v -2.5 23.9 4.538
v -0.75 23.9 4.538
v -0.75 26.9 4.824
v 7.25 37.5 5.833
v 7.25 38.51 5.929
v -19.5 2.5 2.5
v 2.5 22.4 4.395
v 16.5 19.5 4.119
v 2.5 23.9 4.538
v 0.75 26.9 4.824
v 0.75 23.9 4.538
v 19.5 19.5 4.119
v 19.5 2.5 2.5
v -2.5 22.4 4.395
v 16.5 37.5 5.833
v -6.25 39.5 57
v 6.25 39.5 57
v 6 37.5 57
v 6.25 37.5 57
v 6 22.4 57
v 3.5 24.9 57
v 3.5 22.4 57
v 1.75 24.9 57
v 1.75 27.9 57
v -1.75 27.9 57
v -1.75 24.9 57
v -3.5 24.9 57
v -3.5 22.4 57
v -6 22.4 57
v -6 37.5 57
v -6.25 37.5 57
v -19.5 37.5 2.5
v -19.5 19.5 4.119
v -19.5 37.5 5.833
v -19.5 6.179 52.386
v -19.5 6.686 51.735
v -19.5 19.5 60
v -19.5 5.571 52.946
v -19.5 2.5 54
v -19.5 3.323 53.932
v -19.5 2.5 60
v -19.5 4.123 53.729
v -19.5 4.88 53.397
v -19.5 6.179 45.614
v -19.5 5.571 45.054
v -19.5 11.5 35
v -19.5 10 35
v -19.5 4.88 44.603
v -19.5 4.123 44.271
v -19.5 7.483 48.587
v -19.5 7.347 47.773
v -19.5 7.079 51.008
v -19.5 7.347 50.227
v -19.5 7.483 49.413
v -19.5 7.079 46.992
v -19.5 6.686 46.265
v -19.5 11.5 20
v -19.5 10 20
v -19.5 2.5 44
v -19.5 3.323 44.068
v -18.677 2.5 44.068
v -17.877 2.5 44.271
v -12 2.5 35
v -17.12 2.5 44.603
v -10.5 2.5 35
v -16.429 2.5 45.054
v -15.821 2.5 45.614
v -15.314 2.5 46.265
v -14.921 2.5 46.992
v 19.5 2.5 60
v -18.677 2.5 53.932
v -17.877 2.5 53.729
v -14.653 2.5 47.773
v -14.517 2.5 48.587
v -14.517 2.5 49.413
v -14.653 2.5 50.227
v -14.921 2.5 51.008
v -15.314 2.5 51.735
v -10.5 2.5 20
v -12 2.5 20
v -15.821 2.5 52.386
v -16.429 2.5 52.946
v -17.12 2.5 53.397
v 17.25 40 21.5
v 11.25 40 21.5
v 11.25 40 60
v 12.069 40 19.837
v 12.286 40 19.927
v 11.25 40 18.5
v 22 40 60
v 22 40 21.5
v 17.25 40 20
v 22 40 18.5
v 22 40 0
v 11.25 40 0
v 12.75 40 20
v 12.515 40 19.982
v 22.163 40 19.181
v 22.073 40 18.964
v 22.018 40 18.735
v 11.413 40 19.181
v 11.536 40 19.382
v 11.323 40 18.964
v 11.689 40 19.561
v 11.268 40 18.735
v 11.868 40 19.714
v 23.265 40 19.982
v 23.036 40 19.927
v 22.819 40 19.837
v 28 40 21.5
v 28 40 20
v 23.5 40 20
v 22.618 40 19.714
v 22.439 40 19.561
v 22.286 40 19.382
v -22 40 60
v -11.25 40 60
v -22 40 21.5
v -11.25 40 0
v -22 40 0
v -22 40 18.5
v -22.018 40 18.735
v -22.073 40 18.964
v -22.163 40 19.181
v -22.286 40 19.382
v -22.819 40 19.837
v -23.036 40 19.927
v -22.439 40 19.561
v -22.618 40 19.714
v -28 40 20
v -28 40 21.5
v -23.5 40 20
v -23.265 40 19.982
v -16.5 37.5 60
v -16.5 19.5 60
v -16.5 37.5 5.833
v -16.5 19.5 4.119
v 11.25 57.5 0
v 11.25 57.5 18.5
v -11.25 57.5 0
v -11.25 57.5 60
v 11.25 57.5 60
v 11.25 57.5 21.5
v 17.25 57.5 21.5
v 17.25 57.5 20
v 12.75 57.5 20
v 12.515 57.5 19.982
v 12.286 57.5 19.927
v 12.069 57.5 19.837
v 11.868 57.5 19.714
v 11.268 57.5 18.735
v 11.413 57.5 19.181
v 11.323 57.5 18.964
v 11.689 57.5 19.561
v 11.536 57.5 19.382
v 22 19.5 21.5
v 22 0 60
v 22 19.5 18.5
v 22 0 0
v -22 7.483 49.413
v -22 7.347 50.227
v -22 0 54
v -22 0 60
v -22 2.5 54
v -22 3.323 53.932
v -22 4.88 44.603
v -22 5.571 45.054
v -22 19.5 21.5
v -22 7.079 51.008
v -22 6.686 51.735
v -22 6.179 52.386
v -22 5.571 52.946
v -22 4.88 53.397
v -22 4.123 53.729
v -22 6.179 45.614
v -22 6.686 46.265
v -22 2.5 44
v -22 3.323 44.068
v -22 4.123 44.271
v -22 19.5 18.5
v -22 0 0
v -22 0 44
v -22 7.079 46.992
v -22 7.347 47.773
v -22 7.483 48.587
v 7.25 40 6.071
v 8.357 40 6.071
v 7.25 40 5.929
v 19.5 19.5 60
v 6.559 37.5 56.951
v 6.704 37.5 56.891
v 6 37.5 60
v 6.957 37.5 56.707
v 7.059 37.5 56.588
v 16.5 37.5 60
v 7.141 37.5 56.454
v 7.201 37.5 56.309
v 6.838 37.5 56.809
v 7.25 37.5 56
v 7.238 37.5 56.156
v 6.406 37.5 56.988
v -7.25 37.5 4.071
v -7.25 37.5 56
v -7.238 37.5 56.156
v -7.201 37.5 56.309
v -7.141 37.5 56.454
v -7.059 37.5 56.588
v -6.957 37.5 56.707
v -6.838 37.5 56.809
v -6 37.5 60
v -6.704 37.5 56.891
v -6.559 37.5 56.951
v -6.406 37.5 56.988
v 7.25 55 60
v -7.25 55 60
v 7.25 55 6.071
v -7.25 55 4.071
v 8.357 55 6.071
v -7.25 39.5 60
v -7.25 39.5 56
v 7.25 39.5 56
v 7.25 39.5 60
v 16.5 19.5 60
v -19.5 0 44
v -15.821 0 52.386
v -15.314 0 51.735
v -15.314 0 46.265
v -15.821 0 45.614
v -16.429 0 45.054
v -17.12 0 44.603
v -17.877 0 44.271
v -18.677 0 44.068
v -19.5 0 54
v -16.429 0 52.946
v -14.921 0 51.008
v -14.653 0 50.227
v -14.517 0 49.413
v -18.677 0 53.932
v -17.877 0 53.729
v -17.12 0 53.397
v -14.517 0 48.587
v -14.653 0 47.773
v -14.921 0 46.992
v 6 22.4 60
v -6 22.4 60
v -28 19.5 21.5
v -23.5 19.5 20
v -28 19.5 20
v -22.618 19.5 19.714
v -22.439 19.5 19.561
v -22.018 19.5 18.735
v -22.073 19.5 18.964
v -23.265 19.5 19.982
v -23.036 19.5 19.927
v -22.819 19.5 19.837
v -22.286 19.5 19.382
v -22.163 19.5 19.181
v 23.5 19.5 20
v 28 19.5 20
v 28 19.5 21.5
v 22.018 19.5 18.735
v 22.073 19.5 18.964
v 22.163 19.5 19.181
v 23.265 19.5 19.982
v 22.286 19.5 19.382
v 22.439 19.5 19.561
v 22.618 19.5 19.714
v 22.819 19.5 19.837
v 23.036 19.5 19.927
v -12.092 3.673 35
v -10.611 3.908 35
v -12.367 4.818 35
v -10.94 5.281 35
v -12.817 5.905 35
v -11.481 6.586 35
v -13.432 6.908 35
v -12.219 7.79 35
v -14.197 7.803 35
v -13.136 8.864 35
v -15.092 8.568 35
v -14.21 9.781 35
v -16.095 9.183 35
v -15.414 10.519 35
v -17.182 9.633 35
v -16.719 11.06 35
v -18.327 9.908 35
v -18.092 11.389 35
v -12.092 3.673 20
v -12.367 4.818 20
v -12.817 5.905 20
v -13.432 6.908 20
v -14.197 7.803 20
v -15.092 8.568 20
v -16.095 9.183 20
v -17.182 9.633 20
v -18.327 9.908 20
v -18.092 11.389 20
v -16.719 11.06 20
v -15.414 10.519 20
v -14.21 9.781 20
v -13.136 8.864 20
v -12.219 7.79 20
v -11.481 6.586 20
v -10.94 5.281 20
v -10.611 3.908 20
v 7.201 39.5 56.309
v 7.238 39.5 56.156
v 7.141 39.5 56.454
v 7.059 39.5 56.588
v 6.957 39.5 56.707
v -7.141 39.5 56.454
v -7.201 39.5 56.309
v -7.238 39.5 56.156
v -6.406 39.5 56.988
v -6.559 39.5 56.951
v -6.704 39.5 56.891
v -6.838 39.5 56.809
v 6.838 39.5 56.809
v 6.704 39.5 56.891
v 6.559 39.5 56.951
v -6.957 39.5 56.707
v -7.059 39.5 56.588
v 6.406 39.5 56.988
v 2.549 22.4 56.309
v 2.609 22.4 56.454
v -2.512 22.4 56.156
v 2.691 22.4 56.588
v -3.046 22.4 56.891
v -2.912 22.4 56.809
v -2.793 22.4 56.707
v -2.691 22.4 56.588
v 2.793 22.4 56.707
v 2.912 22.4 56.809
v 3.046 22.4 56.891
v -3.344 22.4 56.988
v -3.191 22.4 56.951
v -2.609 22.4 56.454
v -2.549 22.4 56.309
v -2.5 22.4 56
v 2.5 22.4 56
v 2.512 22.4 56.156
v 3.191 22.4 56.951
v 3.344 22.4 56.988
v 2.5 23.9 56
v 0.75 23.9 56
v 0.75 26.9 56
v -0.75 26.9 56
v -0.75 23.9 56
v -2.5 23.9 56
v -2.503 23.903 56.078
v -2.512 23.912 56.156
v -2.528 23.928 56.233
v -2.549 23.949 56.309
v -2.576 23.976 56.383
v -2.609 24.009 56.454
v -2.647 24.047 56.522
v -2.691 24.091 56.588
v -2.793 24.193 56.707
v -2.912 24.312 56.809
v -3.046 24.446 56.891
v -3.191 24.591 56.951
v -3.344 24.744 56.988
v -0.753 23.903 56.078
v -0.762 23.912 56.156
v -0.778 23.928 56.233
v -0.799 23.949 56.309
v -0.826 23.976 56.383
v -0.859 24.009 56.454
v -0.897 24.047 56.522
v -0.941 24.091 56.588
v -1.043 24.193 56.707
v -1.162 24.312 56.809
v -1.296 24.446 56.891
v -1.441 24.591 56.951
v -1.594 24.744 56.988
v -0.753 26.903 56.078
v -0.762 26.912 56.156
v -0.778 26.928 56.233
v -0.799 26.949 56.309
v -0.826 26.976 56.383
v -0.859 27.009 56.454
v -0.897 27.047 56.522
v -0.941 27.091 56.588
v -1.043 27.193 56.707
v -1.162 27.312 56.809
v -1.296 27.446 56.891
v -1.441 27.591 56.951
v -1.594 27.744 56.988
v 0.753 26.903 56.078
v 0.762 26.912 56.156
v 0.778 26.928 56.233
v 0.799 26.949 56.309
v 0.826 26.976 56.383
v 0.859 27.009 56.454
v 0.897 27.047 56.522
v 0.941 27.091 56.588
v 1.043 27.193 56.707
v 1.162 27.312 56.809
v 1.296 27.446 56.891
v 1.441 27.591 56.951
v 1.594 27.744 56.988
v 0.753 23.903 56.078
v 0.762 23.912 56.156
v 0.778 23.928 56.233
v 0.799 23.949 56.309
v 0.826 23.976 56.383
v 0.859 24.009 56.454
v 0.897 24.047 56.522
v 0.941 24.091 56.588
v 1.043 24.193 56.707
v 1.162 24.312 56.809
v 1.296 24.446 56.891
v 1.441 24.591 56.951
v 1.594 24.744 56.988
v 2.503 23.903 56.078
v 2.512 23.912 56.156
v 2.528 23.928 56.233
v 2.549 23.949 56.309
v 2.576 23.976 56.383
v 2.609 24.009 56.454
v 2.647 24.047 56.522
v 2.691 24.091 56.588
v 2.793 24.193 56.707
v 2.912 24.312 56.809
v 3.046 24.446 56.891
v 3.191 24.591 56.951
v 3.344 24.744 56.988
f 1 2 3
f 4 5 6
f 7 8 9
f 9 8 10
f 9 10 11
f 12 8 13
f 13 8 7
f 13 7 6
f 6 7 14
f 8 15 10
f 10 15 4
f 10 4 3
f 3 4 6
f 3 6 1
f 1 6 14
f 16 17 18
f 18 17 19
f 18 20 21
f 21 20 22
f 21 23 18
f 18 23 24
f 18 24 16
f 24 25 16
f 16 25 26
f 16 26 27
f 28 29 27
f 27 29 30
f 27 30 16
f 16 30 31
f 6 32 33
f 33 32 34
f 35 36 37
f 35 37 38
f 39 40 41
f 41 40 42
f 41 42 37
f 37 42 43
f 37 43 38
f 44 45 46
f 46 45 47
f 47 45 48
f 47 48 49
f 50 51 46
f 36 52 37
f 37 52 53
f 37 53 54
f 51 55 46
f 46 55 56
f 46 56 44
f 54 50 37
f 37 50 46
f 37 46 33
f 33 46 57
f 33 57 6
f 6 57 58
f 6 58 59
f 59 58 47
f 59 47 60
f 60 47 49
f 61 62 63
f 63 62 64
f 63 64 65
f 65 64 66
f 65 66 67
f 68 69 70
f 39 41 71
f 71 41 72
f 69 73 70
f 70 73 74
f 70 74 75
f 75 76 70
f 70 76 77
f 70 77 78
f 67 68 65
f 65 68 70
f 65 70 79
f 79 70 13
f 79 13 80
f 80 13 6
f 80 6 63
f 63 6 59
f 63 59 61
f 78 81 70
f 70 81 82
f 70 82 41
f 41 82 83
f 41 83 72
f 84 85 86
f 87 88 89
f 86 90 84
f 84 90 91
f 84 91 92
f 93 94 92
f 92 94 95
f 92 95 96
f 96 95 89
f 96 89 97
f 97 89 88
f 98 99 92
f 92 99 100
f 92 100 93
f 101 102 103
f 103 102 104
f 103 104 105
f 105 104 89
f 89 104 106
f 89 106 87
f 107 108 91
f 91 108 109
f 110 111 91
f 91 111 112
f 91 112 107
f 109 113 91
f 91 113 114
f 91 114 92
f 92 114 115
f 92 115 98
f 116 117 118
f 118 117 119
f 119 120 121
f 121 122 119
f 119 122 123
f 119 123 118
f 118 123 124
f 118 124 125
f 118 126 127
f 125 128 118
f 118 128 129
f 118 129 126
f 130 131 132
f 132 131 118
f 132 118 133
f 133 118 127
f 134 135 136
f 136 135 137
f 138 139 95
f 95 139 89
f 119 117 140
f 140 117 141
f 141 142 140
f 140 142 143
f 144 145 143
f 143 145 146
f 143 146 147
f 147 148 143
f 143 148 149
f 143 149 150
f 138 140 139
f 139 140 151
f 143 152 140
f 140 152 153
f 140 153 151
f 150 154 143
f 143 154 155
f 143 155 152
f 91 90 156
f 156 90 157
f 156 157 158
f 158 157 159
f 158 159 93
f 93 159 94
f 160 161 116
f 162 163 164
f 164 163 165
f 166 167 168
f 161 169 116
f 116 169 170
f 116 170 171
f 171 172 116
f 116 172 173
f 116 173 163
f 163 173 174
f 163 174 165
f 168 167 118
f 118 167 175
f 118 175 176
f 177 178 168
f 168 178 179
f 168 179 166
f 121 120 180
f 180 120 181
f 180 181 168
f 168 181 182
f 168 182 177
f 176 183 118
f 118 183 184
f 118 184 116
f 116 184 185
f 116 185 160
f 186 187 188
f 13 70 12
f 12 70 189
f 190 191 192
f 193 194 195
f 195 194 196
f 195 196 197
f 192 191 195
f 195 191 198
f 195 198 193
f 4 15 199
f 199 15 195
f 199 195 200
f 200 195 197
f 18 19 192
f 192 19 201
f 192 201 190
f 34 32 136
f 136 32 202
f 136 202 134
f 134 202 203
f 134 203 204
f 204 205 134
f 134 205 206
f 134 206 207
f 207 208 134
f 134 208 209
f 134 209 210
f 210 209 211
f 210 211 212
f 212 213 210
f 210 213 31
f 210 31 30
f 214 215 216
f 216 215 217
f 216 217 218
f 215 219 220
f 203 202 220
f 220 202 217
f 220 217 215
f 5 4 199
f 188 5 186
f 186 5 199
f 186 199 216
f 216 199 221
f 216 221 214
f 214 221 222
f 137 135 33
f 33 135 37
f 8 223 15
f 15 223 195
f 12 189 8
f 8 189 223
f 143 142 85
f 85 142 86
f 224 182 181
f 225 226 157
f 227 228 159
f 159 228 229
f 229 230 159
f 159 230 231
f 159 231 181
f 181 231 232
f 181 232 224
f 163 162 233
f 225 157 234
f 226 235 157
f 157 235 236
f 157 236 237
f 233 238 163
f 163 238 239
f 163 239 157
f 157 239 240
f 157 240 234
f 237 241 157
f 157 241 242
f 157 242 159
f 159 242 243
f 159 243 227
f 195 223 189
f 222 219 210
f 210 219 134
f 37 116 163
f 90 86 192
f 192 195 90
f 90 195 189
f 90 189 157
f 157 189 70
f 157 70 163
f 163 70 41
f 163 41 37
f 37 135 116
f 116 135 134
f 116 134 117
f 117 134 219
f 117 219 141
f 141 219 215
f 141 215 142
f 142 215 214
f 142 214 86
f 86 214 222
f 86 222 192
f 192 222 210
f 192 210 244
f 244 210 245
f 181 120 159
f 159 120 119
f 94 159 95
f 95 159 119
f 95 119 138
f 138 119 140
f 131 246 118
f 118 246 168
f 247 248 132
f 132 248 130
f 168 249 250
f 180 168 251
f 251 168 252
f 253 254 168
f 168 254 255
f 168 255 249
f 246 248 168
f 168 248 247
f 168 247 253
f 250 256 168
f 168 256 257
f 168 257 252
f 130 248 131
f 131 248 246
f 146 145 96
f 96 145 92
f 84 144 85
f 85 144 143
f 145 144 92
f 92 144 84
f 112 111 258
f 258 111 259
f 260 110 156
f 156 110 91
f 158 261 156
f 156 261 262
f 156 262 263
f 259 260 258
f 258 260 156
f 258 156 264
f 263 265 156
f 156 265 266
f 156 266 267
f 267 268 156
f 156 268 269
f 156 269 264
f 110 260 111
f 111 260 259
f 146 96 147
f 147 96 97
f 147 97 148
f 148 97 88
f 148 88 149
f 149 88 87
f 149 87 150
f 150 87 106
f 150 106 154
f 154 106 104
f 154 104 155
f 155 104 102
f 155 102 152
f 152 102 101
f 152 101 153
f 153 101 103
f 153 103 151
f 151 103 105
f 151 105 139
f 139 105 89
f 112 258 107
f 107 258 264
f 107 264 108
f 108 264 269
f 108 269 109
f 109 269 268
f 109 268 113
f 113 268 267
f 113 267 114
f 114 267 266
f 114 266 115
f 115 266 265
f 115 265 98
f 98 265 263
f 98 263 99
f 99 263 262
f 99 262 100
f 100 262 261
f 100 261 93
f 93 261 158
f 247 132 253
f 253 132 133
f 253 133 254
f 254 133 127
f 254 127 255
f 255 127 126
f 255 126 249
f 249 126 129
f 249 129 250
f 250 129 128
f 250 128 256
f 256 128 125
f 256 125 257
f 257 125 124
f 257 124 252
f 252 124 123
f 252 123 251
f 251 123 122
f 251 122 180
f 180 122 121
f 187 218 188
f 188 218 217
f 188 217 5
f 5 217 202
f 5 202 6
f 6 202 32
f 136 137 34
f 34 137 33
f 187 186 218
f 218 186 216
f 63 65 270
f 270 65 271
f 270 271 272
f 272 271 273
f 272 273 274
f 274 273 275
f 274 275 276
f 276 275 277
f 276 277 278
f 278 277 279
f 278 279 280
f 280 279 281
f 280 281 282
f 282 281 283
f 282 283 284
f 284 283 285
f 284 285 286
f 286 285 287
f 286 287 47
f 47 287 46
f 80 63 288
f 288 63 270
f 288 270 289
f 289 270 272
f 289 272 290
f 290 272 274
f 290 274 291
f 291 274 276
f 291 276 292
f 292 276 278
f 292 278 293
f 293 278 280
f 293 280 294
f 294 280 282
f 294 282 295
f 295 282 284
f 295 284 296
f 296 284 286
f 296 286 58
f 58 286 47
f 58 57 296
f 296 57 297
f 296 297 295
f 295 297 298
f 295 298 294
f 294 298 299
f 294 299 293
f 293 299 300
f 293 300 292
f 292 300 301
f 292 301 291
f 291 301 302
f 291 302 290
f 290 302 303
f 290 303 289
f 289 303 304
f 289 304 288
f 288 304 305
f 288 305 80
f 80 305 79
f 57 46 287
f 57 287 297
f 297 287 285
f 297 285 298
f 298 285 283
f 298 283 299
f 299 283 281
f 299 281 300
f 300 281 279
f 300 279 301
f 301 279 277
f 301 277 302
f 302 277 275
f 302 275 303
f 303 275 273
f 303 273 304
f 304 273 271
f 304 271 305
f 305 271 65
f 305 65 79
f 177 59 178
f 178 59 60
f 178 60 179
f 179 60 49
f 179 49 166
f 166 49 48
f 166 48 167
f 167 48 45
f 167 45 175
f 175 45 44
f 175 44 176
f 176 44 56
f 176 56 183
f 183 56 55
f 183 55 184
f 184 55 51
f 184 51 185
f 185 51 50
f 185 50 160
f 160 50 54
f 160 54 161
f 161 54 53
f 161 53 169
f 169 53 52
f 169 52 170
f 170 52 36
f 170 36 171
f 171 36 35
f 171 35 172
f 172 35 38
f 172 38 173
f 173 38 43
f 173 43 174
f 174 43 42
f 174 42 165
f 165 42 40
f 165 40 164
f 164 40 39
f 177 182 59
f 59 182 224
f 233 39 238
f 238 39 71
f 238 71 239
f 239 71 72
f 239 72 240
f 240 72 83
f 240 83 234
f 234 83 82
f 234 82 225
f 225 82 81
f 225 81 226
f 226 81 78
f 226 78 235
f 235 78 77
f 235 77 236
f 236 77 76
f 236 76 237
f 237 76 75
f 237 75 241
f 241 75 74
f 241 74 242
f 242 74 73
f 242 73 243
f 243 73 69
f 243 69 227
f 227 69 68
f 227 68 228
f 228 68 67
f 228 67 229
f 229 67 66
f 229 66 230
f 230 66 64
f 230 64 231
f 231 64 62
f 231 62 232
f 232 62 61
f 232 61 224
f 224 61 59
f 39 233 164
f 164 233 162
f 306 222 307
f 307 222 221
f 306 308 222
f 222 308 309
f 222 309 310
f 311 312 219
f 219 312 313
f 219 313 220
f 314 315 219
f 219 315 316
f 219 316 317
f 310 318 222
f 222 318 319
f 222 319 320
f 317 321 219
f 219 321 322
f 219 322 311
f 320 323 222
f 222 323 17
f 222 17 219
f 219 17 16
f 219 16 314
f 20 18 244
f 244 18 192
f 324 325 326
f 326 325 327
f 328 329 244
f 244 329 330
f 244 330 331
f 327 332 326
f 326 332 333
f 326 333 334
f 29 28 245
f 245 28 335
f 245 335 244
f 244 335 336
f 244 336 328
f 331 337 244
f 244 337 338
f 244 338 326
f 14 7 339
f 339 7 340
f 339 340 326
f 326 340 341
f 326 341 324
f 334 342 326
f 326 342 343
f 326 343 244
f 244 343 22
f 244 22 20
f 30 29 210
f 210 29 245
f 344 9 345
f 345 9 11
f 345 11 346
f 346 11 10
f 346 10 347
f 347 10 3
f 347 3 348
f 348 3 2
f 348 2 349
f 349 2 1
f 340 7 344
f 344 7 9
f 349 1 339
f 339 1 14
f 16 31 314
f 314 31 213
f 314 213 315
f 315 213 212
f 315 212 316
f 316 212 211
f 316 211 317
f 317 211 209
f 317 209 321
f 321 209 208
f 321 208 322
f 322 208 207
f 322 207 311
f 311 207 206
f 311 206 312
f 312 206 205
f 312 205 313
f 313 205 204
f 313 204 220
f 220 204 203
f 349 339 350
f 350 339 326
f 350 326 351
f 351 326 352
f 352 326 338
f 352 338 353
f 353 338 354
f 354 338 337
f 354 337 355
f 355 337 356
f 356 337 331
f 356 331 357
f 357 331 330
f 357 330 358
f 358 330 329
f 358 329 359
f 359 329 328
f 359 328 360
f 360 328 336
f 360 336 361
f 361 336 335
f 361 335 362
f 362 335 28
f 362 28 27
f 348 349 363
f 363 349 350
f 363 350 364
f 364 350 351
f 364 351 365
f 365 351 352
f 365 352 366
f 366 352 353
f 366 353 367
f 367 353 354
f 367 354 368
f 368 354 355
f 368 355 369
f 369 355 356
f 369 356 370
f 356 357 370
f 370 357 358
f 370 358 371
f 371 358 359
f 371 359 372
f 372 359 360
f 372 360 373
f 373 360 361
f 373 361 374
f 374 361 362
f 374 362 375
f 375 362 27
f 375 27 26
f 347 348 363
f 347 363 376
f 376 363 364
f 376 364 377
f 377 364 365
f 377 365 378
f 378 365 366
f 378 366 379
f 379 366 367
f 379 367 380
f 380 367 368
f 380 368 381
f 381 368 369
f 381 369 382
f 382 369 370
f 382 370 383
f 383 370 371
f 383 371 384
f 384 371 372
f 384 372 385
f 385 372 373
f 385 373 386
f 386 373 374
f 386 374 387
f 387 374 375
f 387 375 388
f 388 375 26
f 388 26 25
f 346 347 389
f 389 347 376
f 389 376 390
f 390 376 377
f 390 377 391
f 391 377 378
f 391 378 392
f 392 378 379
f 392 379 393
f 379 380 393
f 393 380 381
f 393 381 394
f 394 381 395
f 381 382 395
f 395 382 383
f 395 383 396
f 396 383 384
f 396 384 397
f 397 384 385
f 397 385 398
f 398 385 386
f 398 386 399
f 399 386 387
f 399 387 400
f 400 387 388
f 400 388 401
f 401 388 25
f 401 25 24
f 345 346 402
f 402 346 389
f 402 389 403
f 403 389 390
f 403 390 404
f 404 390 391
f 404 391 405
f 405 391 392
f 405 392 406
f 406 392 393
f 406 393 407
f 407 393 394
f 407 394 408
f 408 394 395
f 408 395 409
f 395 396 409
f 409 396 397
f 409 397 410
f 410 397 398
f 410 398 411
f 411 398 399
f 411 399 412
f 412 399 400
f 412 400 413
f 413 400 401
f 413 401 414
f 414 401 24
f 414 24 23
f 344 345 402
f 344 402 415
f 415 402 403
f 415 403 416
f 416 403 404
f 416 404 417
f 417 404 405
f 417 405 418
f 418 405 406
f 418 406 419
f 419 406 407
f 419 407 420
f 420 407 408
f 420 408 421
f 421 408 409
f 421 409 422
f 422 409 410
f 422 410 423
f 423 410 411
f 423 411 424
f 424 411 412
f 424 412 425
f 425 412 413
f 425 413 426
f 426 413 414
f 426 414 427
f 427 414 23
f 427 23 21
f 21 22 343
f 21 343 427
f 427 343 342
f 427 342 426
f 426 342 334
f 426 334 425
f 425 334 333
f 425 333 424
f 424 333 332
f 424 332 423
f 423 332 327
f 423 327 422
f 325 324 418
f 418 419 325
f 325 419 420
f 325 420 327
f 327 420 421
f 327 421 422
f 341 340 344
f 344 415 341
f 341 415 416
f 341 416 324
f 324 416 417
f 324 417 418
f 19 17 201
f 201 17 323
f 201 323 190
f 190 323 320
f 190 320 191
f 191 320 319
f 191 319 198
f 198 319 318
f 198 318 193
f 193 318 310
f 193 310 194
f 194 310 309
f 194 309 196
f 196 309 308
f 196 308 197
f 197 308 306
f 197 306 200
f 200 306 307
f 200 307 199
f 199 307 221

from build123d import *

# Parameters (mm, degrees)
BOSS_EXTRUDE1_DEPTH             = 60
SHELL1_T                        = -2.5
SKETCH2_W                       = 1.5
SKETCH2_H                       = 17.5
BOSS_EXTRUDE2_DEPTH             = 57.5
SKETCH4_W                       = 3
SKETCH4_H                       = 18
BOSS_EXTRUDE4_DEPTH             = 57.5
BOSS_EXTRUDE5_DEPTH             = 5
SKETCH13_W                      = 1.5
SKETCH13_H                      = 20.5
BOSS_EXTRUDE8_DEPTH             = 6
SKETCH14_W                      = 17.5
SKETCH14_H                      = 1.5
BOSS_EXTRUDE9_DEPTH             = 6
SKETCH15_W                      = 1.5
SKETCH15_H                      = 20.5
BOSS_EXTRUDE10_DEPTH            = 6
FILLET7_R                       = 1.5
CUT_EXTRUDE9_REACH              = 89.694
CUT_EXTRUDE9_DIRECTION_2_REACH  = 89.694
CUT_EXTRUDE10_REACH             = 88.076
CUT_EXTRUDE10_DIRECTION_2_REACH = 88.076
SKETCH27_W                      = 5
SKETCH27_H                      = 17
BOSS_EXTRUDE15_DEPTH            = 2.5
BOSS_EXTRUDE16_DEPTH            = 5.5
SKETCH29_W                      = 9.25
SKETCH29_H                      = 1.666666667
BOSS_EXTRUDE17_DEPTH            = 2.5
SKETCH30_W                      = 3.942307692
SKETCH30_H                      = 17.5
BOSS_EXTRUDE18_DEPTH            = 4
SKETCH31_W                      = 5
SKETCH31_H                      = 17
BOSS_EXTRUDE19_DEPTH            = 2.5
SKETCH32_W                      = 4.464285714
SKETCH32_H                      = 20.5
BOSS_EXTRUDE20_DEPTH            = 5.5
SKETCH35_W                      = 9.25
SKETCH35_H                      = 1.666666667
BOSS_EXTRUDE21_DEPTH            = 2.5
SKETCH36_W                      = 1.428571429
SKETCH36_H                      = 17.5
BOSS_EXTRUDE22_DEPTH            = 4
SKETCH37_W                      = 15.607142857
SKETCH37_H                      = 3.429487179
BOSS_EXTRUDE23_DEPTH            = 2.5
SKETCH38_W                      = 39
SKETCH38_H                      = 5
BOSS_EXTRUDE24_DEPTH            = 2.5
SKETCH39_W                      = 15
SKETCH39_H                      = 1.5
REVOLVE1_ANGLE                  = 90
CUT_EXTRUDE11_DEPTH             = 10
CUT_EXTRUDE12_DEPTH             = 10
BOSS_EXTRUDE25_DEPTH            = 3
BOSS_EXTRUDE26_START            = -2.5
SKETCH43_W                      = 12.25
SKETCH43_H                      = 3.571428571
BOSS_EXTRUDE26_DEPTH            = 2.5
BOSS_EXTRUDE27_REACH            = 87.669
FILLET8_R                       = 1


with BuildPart() as part:
    # Sketch1 → Boss-Extrude1 (new body)
    with BuildSketch(Plane.XY):
        Polygon((-22, 0), (22, 0), (22, 40), (11.25, 40), (11.25, 57.5), (-11.25, 57.5), (-11.25, 40), (-22, 40), align=None)
    extrude(amount=BOSS_EXTRUDE1_DEPTH)

    # Shell1
    shell1_openings = [part.faces().sort_by_distance(p)[0] for p in [
        (0, 25.256094022, 60),
    ]]
    offset(amount=SHELL1_T, openings=shell1_openings, kind=Kind.INTERSECTION)

    # Sketch2 → Boss-Extrude2 (add)
    with BuildSketch(Plane.XY.offset(2.5)):
        with Locations((-8, 46.25)):
            Rectangle(SKETCH2_W, SKETCH2_H)
        with Locations((8, 46.25)):
            Rectangle(SKETCH2_W, SKETCH2_H)
    extrude(amount=BOSS_EXTRUDE2_DEPTH)

    # Sketch4 → Boss-Extrude4 (add)
    with BuildSketch(Plane.XY.offset(2.5)):
        with Locations((-18, 28.5)):
            Rectangle(SKETCH4_W, SKETCH4_H)
        with Locations((18, 28.5)):
            Rectangle(SKETCH4_W, SKETCH4_H)
    extrude(amount=BOSS_EXTRUDE4_DEPTH)

    # Sketch7 → Boss-Extrude5 (add)
    with BuildSketch(Plane.XY.offset(2.5)):
        Polygon((-7.25, 55), (7.25, 55), (7.25, 37.5), (16.5, 37.5), (16.5, 19.5), (19.5, 19.5), (19.5, 2.5), (-19.5, 2.5), (-19.5, 19.5), (-16.5, 19.5), (-16.5, 37.5), (-7.25, 37.5), align=None)
    extrude(amount=BOSS_EXTRUDE5_DEPTH)

    # Sketch13 → Boss-Extrude8 (add)
    with BuildSketch(Plane.ZY.offset(22)):
        with Locations((20.75, 29.75)):
            Rectangle(SKETCH13_W, SKETCH13_H)
    extrude(amount=BOSS_EXTRUDE8_DEPTH)

    # Sketch14 → Boss-Extrude9 (add)
    with BuildSketch(Plane(origin=(11.25, 46.25, 0), x_dir=(0, 1, 0), z_dir=(-1, 0, 0))):
        with Locations((2.5, -20.75)):
            Rectangle(SKETCH14_W, SKETCH14_H)
    extrude(amount=-BOSS_EXTRUDE9_DEPTH)

    # Sketch15 → Boss-Extrude10 (add)
    with BuildSketch(Plane(origin=(22, 0, 0), x_dir=(0, 0, -1), z_dir=(1, 0, 0))):
        with Locations((-20.75, 29.75)):
            Rectangle(SKETCH15_W, SKETCH15_H)
    extrude(amount=BOSS_EXTRUDE10_DEPTH)

    # Fillet7
    fillet7_edges = [part.edges().sort_by_distance(p)[0] for p in [
        (-22, 29.75, 20),
        (11.25, 48.75, 20),
        (22, 29.75, 20),
    ]]
    fillet(fillet7_edges, radius=FILLET7_R)

    # Sketch26 → Cut-Extrude9 (cut, up to next)
    with BuildSketch(Plane(origin=(0, 0, 0), x_dir=(0, 0, -1), z_dir=(1, 0, 0)), mode=Mode.PRIVATE) as cut_extrude9_sk1:
        Polygon((-7.5, 55), (-7.5, 2.5), (-2.5, 2.5), align=None)
    cut_extrude9_tool1 = extrude(cut_extrude9_sk1.sketch, amount=-CUT_EXTRUDE9_REACH, mode=Mode.PRIVATE) & part.part
    add(cut_extrude9_tool1.solids().sort_by_distance((0, 20, 5.833333))[0], mode=Mode.SUBTRACT)

    # Sketch26 → Cut-Extrude9 direction 2 (cut, up to next)
    with BuildSketch(Plane(origin=(0, 0, 0), x_dir=(0, 0, -1), z_dir=(1, 0, 0)), mode=Mode.PRIVATE) as cut_extrude9_direction_2_sk1:
        Polygon((-7.5, 55), (-7.5, 2.5), (-2.5, 2.5), align=None)
    cut_extrude9_direction_2_tool1 = extrude(cut_extrude9_direction_2_sk1.sketch, amount=CUT_EXTRUDE9_DIRECTION_2_REACH, mode=Mode.PRIVATE) & part.part
    add(cut_extrude9_direction_2_tool1.solids().sort_by_distance((0, 20, 5.833333))[0], mode=Mode.SUBTRACT)

    # Sketch33 → Cut-Extrude10 (cut, up to next)
    with BuildSketch(Plane(origin=(0, 2.5, 0), x_dir=(1, 0, 0), z_dir=(0, 1, 0)), mode=Mode.PRIVATE) as cut_extrude10_sk1:
        Polygon((-19.5, -7.5), (19.5, -7.5), (-19.5, -2.5), align=None)
    cut_extrude10_tool1 = extrude(cut_extrude10_sk1.sketch, amount=CUT_EXTRUDE10_REACH, mode=Mode.PRIVATE) & part.part
    add(cut_extrude10_tool1.solids().sort_by_distance((-6.5, 2.5, 5.833333))[0], mode=Mode.SUBTRACT)

    # Sketch33 → Cut-Extrude10 direction 2 (cut, up to next)
    with BuildSketch(Plane(origin=(0, 2.5, 0), x_dir=(1, 0, 0), z_dir=(0, 1, 0)), mode=Mode.PRIVATE) as cut_extrude10_direction_2_sk1:
        Polygon((-19.5, -7.5), (19.5, -7.5), (-19.5, -2.5), align=None)
    cut_extrude10_direction_2_tool1 = extrude(cut_extrude10_direction_2_sk1.sketch, amount=-CUT_EXTRUDE10_DIRECTION_2_REACH, mode=Mode.PRIVATE) & part.part
    add(cut_extrude10_direction_2_tool1.solids().sort_by_distance((-6.5, 2.5, 5.833333))[0], mode=Mode.SUBTRACT)

    # Sketch27 → Boss-Extrude15 (add)
    with BuildSketch(Plane.ZY.offset(22)):
        with Locations((5, 11)):
            Rectangle(SKETCH27_W, SKETCH27_H)
    extrude(amount=-BOSS_EXTRUDE15_DEPTH)

    # Sketch27<4> → Boss-Extrude16 (add)
    with BuildSketch(Plane.ZY.offset(22)):
        Polygon((4.119047619, 19.5), (7.5, 19.5), (7.5, 40), (6.071428571, 40), align=None)
    extrude(amount=-BOSS_EXTRUDE16_DEPTH)

    # Sketch29 → Boss-Extrude17 (add)
    with BuildSketch(Plane.XZ.offset(-37.5)):
        with Locations((-11.875, 6.666666667)):
            Rectangle(SKETCH29_W, SKETCH29_H)
    extrude(amount=-BOSS_EXTRUDE17_DEPTH)

    # Sketch30 → Boss-Extrude18 (add)
    with BuildSketch(Plane.ZY.offset(11.25)):
        with Locations((5.528846154, 48.75)):
            Rectangle(SKETCH30_W, SKETCH30_H)
    extrude(amount=-BOSS_EXTRUDE18_DEPTH)

    # Sketch31 → Boss-Extrude19 (add)
    with BuildSketch(Plane.ZY.offset(-19.5)):
        with Locations((5, 11)):
            Rectangle(SKETCH31_W, SKETCH31_H)
    extrude(amount=-BOSS_EXTRUDE19_DEPTH)

    # Sketch32 → Boss-Extrude20 (add)
    with BuildSketch(Plane(origin=(22, 0, 0), x_dir=(0, 0, -1), z_dir=(1, 0, 0))):
        with Locations((-5.267857143, 29.75)):
            Rectangle(SKETCH32_W, SKETCH32_H)
    extrude(amount=-BOSS_EXTRUDE20_DEPTH)

    # Sketch35 → Boss-Extrude21 (add)
    with BuildSketch(Plane.XZ.offset(-37.5)):
        with Locations((11.875, 6.666666667)):
            Rectangle(SKETCH35_W, SKETCH35_H)
    extrude(amount=-BOSS_EXTRUDE21_DEPTH)

    # Sketch36 → Boss-Extrude22 (add)
    with BuildSketch(Plane(origin=(11.25, 0, 0), x_dir=(0, 0, -1), z_dir=(1, 0, 0))):
        with Locations((-6.785714286, 48.75)):
            Rectangle(SKETCH36_W, SKETCH36_H)
    extrude(amount=-BOSS_EXTRUDE22_DEPTH)

    # Sketch37 → Boss-Extrude23 (add)
    with BuildSketch(Plane(origin=(0, 57.5, 0), x_dir=(1, 0, 0), z_dir=(0, 1, 0))):
        with Locations((0.553571429, -5.785256411)):
            Rectangle(SKETCH37_W, SKETCH37_H)
    extrude(amount=-BOSS_EXTRUDE23_DEPTH)

    # Sketch38 → Boss-Extrude24 (add)
    with BuildSketch(Plane.XZ):
        with Locations((0, 5)):
            Rectangle(SKETCH38_W, SKETCH38_H)
    extrude(amount=-BOSS_EXTRUDE24_DEPTH)

    # Sketch39 → Revolve1 (revolve)
    with BuildSketch(Plane(origin=(-19.5, 0, 0), x_dir=(0, 0, -1), z_dir=(1, 0, 0))):
        with Locations((-27.5, 10.75)):
            Rectangle(SKETCH39_W, SKETCH39_H)
    revolve(axis=Axis((-19.5, 2.5, 60), (0, 0, -1)), revolution_arc=REVOLVE1_ANGLE)

    # Sketch40 → Cut-Extrude11 (cut)
    with BuildSketch(Plane(origin=(-19.5, 0, 0), x_dir=(0, 0, -1), z_dir=(1, 0, 0))):
        with BuildLine():
            Line((-54, 2.5), (-44, 2.5))
            ThreePointArc((-44, 2.5), (-49, 7.5), (-54, 2.5))
        make_face()
    extrude(amount=-CUT_EXTRUDE11_DEPTH, mode=Mode.SUBTRACT)

    # Sketch41 → Cut-Extrude12 (cut)
    with BuildSketch(Plane(origin=(0, 2.5, 0), x_dir=(1, 0, 0), z_dir=(0, 1, 0))):
        with BuildLine():
            Line((-22, -44), (-19.5, -44))
            ThreePointArc((-19.5, -44), (-14.5, -49), (-19.5, -54))
            Line((-19.5, -54), (-22, -54))
            Line((-22, -54), (-22, -44))
        make_face()
    extrude(amount=-CUT_EXTRUDE12_DEPTH, mode=Mode.SUBTRACT)

    # Sketch42 → Boss-Extrude25 (add)
    with BuildSketch(Plane.XY.offset(60)):
        Polygon((-7.25, 39.5), (7.25, 39.5), (7.25, 37.5), (6, 37.5), (6, 22.4), (-6, 22.4), (-6, 37.5), (-7.25, 37.5), align=None)
    extrude(amount=-BOSS_EXTRUDE25_DEPTH)

    # Sketch43 → Boss-Extrude26 (add)
    with BuildSketch(Plane(origin=(0, 40, 0), x_dir=(1, 0, 0), z_dir=(0, 1, 0)).offset(BOSS_EXTRUDE26_START)):
        with Locations((-13.375, -4.285714286)):
            Rectangle(SKETCH43_W, SKETCH43_H)
    extrude(amount=BOSS_EXTRUDE26_DEPTH)

    # Boss-Extrude27: up to this plane
    boss_extrude27_end = Plane(origin=(28.001, 55, 7.5), z_dir=(0, -0.09480909262799542, 0.9954954725939523))
    # Sketch44 → Boss-Extrude27 (add, up to the surface)
    with BuildSketch(Plane(origin=(0, 0, 57), x_dir=(-1, 0, 0), z_dir=(0, 0, -1)), mode=Mode.PRIVATE) as boss_extrude27_sk1:
        Polygon((-2.5, 22.4), (-2.5, 23.9), (-0.75, 23.9), (-0.75, 26.9), (0.75, 26.9), (0.75, 23.9), (2.5, 23.9), (2.5, 22.4), align=None)
    boss_extrude27_tool1 = split(extrude(boss_extrude27_sk1.sketch, amount=BOSS_EXTRUDE27_REACH, mode=Mode.PRIVATE), bisect_by=boss_extrude27_end, keep=Keep.BOTH, mode=Mode.PRIVATE)
    add(boss_extrude27_tool1.solids().sort_by_distance((0, 23.99375, 57))[0])

    # Fillet8
    fillet8_edges = [part.edges().sort_by_distance(p)[0] for p in [
        (-7.25, 38.5, 57),
        (7.25, 38.5, 57),
        (1.625, 23.9, 57),
        (0.75, 25.4, 57),
        (0, 26.9, 57),
        (-0.75, 25.4, 57),
        (-1.625, 23.9, 57),
        (2.5, 23.15, 57),
        (-2.5, 23.15, 57),
    ]]
    fillet(fillet8_edges, radius=FILLET8_R)


solid = part.part
